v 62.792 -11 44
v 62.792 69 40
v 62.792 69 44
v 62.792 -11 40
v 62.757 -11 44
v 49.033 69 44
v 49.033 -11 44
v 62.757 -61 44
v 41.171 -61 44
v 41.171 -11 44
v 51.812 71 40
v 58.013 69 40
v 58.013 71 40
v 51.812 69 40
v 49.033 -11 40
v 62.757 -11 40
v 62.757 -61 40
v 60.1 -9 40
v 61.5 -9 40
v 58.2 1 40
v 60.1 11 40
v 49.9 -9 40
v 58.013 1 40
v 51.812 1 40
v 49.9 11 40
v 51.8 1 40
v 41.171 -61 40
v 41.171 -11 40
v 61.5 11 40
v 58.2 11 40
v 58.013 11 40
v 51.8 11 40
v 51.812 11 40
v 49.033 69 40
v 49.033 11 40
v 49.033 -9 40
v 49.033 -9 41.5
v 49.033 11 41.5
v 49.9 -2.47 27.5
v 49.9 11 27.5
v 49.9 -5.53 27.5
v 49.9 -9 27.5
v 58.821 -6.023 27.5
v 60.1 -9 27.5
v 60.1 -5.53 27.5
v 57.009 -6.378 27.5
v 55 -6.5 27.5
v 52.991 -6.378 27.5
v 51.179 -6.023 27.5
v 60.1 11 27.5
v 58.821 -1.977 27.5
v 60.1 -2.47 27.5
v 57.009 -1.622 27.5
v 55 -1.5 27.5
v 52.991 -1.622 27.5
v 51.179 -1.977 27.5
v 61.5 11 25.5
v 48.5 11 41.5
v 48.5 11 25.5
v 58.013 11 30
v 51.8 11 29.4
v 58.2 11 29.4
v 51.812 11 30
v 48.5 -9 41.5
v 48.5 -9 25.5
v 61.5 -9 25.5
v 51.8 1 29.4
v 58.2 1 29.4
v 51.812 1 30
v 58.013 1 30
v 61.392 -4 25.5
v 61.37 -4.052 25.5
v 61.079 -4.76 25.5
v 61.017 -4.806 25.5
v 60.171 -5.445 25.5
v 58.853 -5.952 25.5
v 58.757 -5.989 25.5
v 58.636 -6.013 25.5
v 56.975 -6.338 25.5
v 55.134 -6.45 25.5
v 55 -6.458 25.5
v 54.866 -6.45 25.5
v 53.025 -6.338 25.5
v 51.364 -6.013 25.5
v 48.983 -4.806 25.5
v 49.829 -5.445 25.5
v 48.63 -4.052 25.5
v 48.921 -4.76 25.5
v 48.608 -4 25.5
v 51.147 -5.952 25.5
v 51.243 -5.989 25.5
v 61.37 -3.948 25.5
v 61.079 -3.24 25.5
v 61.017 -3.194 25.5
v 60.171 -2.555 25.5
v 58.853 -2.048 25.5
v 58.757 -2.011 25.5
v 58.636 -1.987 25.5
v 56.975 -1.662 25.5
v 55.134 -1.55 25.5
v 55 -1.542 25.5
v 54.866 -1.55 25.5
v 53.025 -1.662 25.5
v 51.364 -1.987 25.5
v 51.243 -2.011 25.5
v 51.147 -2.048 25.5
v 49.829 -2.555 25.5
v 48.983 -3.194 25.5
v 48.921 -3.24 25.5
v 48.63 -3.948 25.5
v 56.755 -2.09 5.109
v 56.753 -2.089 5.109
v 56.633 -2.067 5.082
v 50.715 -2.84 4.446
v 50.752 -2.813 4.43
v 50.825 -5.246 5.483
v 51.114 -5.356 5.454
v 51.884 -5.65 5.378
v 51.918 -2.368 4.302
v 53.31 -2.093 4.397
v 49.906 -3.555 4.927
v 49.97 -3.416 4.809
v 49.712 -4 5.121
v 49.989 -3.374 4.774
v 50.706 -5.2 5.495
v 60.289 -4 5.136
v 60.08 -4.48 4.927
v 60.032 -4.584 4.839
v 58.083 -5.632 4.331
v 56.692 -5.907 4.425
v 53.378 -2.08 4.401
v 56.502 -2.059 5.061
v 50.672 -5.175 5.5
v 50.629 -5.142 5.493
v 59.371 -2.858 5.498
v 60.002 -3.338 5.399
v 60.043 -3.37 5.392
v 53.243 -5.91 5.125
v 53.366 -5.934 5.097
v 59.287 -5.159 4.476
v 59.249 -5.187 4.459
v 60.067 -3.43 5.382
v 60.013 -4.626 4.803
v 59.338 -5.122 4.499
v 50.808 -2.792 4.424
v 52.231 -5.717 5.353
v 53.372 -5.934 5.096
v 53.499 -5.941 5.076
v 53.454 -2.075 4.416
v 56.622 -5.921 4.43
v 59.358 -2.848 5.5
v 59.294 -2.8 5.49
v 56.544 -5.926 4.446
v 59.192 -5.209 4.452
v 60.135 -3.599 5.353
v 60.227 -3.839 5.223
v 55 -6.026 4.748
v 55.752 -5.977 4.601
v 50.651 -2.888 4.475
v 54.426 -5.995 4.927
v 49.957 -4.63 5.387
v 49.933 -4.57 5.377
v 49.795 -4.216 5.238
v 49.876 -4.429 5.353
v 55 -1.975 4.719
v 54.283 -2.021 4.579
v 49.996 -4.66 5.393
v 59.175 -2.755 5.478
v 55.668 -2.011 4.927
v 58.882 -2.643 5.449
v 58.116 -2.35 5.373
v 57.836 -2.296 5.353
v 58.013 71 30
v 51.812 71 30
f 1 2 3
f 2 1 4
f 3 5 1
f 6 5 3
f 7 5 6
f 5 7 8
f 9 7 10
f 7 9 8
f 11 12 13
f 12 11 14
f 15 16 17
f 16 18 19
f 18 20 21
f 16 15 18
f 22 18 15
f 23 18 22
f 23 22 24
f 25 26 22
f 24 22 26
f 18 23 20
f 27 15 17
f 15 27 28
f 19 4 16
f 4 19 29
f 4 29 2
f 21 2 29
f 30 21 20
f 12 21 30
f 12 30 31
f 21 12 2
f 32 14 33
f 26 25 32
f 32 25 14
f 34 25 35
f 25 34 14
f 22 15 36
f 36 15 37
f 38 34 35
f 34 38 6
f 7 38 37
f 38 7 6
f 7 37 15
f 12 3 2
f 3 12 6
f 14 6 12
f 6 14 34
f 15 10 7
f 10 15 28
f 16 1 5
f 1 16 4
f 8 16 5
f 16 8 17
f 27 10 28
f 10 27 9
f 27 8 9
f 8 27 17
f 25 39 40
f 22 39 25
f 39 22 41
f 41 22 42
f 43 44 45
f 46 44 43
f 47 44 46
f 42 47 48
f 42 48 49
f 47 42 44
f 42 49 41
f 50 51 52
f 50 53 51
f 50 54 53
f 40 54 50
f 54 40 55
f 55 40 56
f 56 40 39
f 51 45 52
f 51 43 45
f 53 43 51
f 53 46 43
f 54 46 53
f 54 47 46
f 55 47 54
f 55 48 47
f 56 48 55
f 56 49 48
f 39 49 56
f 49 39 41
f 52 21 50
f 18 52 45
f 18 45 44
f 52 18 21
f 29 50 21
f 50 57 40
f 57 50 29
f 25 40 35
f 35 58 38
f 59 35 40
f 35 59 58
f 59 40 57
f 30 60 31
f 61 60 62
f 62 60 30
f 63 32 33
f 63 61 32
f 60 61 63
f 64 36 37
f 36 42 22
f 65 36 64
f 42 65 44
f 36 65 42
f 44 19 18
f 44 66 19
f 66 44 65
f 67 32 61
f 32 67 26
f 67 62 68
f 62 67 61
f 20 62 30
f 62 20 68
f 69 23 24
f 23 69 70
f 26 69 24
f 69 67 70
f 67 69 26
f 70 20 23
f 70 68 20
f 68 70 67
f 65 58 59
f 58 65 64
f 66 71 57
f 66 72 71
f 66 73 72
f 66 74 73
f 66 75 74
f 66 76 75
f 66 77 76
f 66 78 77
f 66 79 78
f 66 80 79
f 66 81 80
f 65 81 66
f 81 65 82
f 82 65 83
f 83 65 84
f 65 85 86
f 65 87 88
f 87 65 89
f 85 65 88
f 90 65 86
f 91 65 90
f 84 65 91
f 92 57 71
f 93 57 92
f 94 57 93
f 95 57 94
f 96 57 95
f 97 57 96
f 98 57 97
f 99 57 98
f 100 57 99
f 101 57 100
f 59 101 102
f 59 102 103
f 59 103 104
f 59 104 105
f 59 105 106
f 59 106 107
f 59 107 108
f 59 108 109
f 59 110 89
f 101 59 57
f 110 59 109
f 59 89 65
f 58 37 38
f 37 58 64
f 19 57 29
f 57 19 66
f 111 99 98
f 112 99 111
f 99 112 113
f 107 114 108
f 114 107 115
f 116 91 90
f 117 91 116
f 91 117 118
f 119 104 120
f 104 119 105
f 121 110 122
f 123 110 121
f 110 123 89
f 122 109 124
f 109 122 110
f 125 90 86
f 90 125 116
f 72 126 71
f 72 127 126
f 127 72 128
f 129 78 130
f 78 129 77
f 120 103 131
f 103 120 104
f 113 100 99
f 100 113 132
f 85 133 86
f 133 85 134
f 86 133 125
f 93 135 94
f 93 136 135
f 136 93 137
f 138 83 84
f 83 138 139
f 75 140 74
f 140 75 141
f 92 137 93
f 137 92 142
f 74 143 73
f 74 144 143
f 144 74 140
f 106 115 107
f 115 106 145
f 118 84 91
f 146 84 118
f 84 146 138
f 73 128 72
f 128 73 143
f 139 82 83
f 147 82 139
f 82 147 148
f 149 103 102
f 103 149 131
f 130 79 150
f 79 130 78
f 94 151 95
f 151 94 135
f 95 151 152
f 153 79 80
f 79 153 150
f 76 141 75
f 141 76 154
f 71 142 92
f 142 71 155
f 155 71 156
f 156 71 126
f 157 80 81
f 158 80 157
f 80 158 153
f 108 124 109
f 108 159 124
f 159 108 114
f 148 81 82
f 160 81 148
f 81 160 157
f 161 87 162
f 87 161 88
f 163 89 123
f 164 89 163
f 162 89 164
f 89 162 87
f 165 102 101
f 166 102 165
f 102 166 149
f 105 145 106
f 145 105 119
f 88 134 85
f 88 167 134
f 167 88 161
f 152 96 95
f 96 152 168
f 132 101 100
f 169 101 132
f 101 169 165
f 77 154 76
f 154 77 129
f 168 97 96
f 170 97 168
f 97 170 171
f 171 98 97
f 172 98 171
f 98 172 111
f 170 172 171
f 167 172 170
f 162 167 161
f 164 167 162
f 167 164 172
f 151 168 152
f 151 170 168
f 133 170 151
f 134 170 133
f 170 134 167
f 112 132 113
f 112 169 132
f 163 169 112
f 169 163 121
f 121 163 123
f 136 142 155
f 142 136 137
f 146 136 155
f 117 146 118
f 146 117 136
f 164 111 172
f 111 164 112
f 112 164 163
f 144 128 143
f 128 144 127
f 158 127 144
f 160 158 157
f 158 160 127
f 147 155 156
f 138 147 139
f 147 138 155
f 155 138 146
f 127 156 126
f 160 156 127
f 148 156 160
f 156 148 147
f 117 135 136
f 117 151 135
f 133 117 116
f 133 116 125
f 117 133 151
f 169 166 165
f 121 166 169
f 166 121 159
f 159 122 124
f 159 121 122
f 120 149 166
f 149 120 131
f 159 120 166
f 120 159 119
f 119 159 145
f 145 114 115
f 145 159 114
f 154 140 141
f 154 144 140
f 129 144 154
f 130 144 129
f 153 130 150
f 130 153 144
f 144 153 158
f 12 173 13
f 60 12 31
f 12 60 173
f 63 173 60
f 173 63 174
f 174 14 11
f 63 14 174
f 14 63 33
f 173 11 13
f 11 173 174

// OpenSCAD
// file: irkem_hammerTips_v1.scad
tol = 0.2;
extrWall = 1.7+tol;
extrH = 12.9+tol;//12.6+tol;
extrW = 10+tol;

hammerY = 20;
hammerZ = 24;

$fn = 20;

module hammerTips(){
//Strike cylinder:
//v1: made elliptical and added skew-angle indentation to:
//      1. Avoid hitting adjacent strings
//      2. Maximize likelihood of striking proper string
//      3. Ensure that hammer tip force on the string is centering
//Prior cone geometry resulted in adjacent string strikes in y axis for most keys
    difference(){
        translate([0,-5,0]) scale([2.6,1,1]) cylinder(hammerZ,2.5,2);
        translate([-12,-1.8,25]) rotate([0,90,-15]) cylinder(hammerZ,3,3);
    }
difference(){
    translate([-6.5,-10,-14]) cube([13,hammerY,16]);
    union(){uChan();translate([-extrW/2,-hammerY/2,-extrH]) cube([extrW,hammerY/2,extrH]);
}
}
module uChan(){
difference(){
    translate([-extrW/2,-hammerY/2,-extrH]) cube([extrW,hammerY,extrH]);
    translate([-extrW/2+extrWall,-hammerY/2,-extrH-extrWall]) cube([extrW-2*extrWall,hammerY,extrH]);
}
}
}

//hammerTips();
// main file
include <irkem_hammerTips_v1.scad>

xO = -6;
yO = -11;
zO = 40;

kH = 4;
bH = 10;
wL = 50;
bL = 80;
oct = 6.5 * 25.4;
gap = 2;
n_oct = 1;//5;
n_keys = 12 * n_oct;
oset = -1;

sharpFlag = 1;

for (k = [4]){//:1:(n_keys-1)]){
    //
    translate([k*13.75+6.0+xO,12+yO,-12.5+zO]) rotate([0,180,0]) hammerTips();
}

for (k = [0:1:(n_oct-1)]){

//C:
//color("ivory") translate([k*oct+0+xO,0+yO,0+zO]) cube([oct*1/12-gap,bL,kH]);
//color("ivory") translate([k*oct+0+xO,-wL+yO,0+zO]) cube([oct*1/7-gap,wL,kH]);

////C#:
//if (sharpFlag){    
//color("black") translate([k*oct+oct*1/12+xO,gap+yO,0+zO]) cube([oct*1/12-gap,bL,kH+bH]);
//}//

////D:
//color("ivory") translate([k*oct+oct*2/12+xO,0+yO,0+zO]) cube([oct*1/12-gap,bL,kH]);
//color("ivory") translate([k*oct+oct*1/7+xO,-wL+yO,0+zO]) cube([oct*1/7-gap,wL,kH]);//

////D#:
//if (sharpFlag){
//color("black") translate([k*oct+oct*3/12+xO,gap+yO,0+zO]) cube([oct*1/12-gap,bL,kH+bH]);
//}//

////E:
color("ivory") translate([k*oct+oct*4/12+xO,0+yO,0+zO]) cube([2+oct*1/12-gap,bL,kH]);
color("ivory") translate([k*oct+oct*2/7+xO,-wL+yO,0+zO]) cube([oct*1/7-gap,wL,kH]);//

////F:
//color("ivory") difference(){
//    translate([k*oct+oct*3/7+xO,-wL+yO,0+zO]) cube([oct*1/7-gap,wL+bL,kH]);
//    translate([k*oct+oct*6/12-2+xO,0+yO,0+zO]) cube([4+oct*(1/7-1/12)-gap,bL,kH]);
//}
//color("ivory") translate([k*oct+oct*3/7+xO,-wL+yO,0+zO]) cube([oct*1/7-gap,wL,kH]);//

////F#:
//if (sharpFlag){
//color("black") translate([k*oct+oct*6/12+xO,gap+yO,0+zO]) cube([oct*1/12-gap,bL,kH+bH]);
//}//

////G:
//color("ivory") translate([k*oct+oct*7/12+xO,0+yO,0+zO]) cube([oct*1/12-gap,bL,kH]);
//color("ivory") translate([k*oct+oct*4/7+xO,-wL+yO,0+zO]) cube([oct*1/7-gap,wL,kH]);//

////G#:
//if (sharpFlag){
//color("black") translate([k*oct+oct*8/12+xO,gap+yO,0+zO]) cube([oct*1/12-gap,bL,kH+bH]);
//}//

////A:
//color("ivory") translate([k*oct+oct*9/12+xO,0+yO,0+zO]) cube([oct*1/12-gap,bL,kH]);
//color("ivory") translate([k*oct+oct*5/7+xO,-wL+yO,0+zO]) cube([oct*1/7-gap,wL,kH]);//

////A#:
//if (sharpFlag){
//color("black") translate([k*oct+oct*10/12+xO,gap+yO,0+zO]) cube([oct*1/12-gap,bL,kH+bH]);
//}//

////B:
//color("ivory") translate([k*oct+oct*11/12+xO,0+yO,0+zO]) cube([oct*1/12-gap,bL,kH]);
//color("ivory") translate([k*oct+oct*6/7+xO,-wL+yO,0+zO]) cube([oct*1/7-gap,wL,kH]);//

}

for (i = [4]){//,2,4,5,7,9,11]){//[0:1:(n_keys-1)]){
    translate([oset+oct*i/12+(oct*1/12-6.2)/2+xO,2+10+yO,-10+zO]) cube([6.2,bL-10,10]);
}

//if (sharpFlag){
//    for (i = [1,3,6,8,10]){//[0:1:(n_keys-1)]){
//    translate([oset+oct*i/12+(oct*1/12-6.2)/2+xO,2+10+yO,-10+zO]) cube([6.2,bL-10,10]);
//}
//}
